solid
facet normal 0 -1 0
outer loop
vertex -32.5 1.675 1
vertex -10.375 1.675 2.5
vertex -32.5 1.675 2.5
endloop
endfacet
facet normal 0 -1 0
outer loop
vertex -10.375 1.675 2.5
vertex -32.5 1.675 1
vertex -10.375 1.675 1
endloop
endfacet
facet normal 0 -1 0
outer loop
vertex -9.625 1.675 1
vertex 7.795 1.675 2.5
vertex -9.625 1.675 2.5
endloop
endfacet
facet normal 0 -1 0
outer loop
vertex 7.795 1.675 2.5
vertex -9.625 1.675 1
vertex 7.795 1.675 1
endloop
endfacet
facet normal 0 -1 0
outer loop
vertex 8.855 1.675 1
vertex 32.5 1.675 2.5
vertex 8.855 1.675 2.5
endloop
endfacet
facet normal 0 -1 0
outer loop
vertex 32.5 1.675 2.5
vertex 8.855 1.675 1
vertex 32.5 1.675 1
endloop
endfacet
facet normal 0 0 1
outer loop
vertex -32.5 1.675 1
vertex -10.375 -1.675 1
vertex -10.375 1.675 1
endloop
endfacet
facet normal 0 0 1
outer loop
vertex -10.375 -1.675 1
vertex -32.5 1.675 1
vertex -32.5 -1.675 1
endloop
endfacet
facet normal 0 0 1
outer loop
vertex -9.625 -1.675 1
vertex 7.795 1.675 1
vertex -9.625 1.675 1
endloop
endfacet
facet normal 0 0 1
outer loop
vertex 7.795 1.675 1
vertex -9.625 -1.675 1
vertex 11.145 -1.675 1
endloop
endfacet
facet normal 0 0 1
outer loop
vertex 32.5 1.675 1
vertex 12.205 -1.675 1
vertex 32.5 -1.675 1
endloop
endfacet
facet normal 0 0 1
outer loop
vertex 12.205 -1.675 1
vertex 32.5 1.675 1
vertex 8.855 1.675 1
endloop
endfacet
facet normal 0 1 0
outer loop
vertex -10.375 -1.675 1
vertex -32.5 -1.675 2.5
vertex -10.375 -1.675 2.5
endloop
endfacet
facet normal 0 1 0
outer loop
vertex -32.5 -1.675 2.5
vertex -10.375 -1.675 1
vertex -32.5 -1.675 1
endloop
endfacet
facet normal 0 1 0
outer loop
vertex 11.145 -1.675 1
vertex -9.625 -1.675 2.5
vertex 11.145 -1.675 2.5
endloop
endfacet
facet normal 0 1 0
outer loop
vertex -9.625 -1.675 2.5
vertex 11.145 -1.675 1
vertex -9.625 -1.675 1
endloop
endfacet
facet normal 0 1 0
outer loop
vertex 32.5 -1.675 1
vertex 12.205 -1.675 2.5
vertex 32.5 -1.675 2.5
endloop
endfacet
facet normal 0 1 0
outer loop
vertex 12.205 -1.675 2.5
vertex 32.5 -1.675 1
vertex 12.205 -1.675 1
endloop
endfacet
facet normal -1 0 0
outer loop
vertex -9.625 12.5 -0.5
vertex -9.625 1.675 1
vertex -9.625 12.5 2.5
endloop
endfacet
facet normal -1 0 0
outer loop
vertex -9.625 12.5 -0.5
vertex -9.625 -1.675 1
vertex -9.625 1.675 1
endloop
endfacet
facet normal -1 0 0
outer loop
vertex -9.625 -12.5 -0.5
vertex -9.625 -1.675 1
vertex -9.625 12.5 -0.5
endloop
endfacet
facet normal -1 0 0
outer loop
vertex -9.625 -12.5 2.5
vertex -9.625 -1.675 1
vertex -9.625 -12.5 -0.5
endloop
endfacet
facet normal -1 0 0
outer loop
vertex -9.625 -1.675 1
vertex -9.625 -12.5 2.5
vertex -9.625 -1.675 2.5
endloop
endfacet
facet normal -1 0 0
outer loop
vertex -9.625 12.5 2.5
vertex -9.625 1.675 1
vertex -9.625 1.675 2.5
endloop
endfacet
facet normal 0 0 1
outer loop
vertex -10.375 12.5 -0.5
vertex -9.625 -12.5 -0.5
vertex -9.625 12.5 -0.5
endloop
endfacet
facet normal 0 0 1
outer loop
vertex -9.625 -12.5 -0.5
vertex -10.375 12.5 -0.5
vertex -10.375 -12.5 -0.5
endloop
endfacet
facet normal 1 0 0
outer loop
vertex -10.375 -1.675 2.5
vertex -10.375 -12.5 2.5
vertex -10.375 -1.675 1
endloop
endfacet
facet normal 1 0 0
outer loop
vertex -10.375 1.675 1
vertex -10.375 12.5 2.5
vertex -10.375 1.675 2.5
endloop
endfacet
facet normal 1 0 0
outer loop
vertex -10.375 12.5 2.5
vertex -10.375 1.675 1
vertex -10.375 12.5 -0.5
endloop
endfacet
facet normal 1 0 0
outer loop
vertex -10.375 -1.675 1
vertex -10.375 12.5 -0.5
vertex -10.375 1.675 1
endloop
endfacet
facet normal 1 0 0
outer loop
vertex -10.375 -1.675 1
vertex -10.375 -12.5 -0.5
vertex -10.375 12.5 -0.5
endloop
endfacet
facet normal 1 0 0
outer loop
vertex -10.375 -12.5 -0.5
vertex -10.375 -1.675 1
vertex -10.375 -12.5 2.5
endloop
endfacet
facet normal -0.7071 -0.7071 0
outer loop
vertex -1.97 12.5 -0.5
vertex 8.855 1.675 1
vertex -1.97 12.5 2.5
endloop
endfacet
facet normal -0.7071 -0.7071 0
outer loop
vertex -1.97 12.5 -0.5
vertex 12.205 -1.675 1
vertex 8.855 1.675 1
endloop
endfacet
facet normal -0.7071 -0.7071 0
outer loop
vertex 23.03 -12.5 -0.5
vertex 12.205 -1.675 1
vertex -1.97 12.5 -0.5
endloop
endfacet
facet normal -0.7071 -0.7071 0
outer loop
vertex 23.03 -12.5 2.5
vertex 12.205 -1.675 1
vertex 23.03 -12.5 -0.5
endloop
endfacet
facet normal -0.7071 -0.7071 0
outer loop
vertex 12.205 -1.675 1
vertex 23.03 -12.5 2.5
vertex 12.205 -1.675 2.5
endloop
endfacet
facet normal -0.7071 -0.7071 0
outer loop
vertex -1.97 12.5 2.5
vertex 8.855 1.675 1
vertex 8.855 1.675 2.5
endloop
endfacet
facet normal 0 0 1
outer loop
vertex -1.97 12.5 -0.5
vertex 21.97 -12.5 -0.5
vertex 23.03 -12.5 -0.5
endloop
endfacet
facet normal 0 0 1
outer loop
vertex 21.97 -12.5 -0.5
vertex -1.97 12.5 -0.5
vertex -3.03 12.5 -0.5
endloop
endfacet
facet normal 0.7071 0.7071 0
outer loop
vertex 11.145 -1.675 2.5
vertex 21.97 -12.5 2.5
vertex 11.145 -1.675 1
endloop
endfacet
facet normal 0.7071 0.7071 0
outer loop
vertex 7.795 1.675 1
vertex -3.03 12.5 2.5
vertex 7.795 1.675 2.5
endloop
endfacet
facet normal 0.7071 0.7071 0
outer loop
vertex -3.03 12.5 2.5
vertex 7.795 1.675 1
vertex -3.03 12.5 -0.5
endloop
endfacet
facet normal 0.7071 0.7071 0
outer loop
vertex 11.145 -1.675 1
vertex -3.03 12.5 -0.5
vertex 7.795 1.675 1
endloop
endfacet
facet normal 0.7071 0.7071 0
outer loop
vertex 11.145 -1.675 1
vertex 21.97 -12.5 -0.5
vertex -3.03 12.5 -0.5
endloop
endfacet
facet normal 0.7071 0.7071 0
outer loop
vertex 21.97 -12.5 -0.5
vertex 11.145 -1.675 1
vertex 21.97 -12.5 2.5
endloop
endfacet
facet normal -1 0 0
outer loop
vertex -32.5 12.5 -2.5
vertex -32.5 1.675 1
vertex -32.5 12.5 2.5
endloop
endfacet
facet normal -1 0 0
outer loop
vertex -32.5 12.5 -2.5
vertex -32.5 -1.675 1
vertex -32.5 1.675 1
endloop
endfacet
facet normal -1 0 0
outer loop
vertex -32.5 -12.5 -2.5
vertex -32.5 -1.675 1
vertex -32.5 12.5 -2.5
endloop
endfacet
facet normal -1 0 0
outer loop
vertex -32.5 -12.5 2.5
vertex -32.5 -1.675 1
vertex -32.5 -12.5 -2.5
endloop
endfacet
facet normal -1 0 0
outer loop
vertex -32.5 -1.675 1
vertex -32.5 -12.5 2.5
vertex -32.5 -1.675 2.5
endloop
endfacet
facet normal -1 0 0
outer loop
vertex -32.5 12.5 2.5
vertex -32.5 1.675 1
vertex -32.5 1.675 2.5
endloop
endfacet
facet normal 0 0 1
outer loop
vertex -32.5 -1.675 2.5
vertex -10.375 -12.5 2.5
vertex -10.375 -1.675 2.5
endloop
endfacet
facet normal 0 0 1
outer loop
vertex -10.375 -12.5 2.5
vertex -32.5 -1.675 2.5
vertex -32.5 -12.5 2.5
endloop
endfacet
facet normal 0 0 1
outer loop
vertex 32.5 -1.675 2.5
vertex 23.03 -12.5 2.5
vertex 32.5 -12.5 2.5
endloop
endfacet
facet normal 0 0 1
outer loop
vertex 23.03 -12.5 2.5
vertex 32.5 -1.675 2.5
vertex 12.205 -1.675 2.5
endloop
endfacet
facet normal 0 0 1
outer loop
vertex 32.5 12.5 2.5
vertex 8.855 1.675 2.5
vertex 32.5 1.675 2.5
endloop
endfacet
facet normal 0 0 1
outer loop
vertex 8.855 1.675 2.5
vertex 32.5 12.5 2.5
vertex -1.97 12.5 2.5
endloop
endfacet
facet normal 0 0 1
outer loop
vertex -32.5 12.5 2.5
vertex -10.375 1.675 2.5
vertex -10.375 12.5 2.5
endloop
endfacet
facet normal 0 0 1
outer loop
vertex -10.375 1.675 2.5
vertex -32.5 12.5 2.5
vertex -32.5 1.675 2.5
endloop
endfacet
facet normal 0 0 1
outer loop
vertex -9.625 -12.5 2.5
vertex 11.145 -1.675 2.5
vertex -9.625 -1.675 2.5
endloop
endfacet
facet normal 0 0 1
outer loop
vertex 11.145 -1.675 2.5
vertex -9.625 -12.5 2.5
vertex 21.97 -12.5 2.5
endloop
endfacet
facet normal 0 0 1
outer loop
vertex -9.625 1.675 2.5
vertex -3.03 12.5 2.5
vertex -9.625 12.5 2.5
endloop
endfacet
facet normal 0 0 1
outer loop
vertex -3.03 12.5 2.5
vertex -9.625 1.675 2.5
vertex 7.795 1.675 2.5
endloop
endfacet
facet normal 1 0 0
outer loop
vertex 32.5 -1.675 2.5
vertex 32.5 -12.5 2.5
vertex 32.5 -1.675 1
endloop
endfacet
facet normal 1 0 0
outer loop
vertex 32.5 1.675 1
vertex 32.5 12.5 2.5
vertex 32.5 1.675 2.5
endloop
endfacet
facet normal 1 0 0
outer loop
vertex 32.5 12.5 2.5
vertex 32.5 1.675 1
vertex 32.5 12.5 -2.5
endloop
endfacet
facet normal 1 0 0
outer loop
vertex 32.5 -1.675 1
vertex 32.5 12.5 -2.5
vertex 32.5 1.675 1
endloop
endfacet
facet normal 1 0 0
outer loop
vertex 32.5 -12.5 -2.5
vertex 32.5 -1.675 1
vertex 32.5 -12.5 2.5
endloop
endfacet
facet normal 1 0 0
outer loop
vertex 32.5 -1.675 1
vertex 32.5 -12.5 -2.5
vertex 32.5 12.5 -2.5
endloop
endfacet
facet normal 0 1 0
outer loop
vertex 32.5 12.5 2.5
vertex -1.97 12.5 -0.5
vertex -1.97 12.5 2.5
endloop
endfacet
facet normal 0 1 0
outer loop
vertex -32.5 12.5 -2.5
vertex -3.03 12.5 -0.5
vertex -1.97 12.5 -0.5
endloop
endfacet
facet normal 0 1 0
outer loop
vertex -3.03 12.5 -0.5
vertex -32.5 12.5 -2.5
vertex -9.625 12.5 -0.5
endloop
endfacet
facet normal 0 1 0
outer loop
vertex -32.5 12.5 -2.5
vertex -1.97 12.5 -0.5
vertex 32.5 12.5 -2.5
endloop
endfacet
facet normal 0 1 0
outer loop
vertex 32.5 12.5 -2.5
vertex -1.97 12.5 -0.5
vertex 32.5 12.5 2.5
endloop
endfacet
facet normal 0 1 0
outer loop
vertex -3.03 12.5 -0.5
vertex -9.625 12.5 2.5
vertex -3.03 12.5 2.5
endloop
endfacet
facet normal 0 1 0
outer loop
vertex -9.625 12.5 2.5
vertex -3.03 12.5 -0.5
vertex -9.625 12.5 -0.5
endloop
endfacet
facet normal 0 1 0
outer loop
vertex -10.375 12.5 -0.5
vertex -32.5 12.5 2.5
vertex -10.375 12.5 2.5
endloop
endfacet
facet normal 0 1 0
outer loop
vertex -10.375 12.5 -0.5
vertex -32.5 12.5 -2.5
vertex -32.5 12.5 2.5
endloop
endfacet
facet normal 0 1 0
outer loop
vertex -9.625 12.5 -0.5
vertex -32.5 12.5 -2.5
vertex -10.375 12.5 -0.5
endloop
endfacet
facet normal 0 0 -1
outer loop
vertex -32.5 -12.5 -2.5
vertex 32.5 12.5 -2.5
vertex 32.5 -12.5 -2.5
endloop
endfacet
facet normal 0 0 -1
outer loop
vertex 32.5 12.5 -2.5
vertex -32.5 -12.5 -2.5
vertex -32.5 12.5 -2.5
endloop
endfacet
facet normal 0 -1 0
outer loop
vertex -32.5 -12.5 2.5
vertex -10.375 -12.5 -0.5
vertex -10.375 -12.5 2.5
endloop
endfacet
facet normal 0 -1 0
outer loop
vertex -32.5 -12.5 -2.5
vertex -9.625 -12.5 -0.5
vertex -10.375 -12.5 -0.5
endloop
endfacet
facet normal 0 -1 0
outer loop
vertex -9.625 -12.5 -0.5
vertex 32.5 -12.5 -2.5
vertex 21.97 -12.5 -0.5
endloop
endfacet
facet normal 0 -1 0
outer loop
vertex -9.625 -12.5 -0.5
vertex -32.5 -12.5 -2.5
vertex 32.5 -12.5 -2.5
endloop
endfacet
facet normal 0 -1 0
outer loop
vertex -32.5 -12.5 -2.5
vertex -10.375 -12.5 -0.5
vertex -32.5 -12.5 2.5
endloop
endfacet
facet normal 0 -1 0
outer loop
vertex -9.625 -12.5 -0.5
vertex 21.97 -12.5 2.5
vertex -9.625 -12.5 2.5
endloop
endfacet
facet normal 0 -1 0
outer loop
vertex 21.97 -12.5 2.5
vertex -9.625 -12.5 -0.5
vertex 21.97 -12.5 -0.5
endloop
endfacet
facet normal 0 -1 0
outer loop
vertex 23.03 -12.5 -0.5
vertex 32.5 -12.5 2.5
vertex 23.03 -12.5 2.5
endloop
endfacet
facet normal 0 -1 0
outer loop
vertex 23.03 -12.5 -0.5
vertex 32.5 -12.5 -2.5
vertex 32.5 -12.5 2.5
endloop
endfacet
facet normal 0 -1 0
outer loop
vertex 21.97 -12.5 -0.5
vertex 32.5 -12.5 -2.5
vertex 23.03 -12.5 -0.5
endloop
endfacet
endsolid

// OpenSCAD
//Simple 1/4" Tape Splicing Block 
//openSCAD (.scad)
//Joe Plazak, 2015,  
//CC-Share-Alike

difference() {
    
//Initial Block    
cube([65,25,5],true, $fn=100);
    union(){

//1/8" Tape Track Slot: 1.5mm deep (from top); 6.30mm wide
        translate([0,0,2])
            cube([109,3.35,2],true, $fn=100);
    
//90 Degree Angle Razor Slot: .75mm wide
        translate([-10,0,2])
        rotate(a=[0,90,0])
            cube([5,30,.75],true, $fn=100);

//45 Degree Angle Razor Slot: .75mm wide
        translate([10,0,2])
        rotate(a=[0,90,45])
            cube([5,45,.75],true, $fn=100);
    }
}
